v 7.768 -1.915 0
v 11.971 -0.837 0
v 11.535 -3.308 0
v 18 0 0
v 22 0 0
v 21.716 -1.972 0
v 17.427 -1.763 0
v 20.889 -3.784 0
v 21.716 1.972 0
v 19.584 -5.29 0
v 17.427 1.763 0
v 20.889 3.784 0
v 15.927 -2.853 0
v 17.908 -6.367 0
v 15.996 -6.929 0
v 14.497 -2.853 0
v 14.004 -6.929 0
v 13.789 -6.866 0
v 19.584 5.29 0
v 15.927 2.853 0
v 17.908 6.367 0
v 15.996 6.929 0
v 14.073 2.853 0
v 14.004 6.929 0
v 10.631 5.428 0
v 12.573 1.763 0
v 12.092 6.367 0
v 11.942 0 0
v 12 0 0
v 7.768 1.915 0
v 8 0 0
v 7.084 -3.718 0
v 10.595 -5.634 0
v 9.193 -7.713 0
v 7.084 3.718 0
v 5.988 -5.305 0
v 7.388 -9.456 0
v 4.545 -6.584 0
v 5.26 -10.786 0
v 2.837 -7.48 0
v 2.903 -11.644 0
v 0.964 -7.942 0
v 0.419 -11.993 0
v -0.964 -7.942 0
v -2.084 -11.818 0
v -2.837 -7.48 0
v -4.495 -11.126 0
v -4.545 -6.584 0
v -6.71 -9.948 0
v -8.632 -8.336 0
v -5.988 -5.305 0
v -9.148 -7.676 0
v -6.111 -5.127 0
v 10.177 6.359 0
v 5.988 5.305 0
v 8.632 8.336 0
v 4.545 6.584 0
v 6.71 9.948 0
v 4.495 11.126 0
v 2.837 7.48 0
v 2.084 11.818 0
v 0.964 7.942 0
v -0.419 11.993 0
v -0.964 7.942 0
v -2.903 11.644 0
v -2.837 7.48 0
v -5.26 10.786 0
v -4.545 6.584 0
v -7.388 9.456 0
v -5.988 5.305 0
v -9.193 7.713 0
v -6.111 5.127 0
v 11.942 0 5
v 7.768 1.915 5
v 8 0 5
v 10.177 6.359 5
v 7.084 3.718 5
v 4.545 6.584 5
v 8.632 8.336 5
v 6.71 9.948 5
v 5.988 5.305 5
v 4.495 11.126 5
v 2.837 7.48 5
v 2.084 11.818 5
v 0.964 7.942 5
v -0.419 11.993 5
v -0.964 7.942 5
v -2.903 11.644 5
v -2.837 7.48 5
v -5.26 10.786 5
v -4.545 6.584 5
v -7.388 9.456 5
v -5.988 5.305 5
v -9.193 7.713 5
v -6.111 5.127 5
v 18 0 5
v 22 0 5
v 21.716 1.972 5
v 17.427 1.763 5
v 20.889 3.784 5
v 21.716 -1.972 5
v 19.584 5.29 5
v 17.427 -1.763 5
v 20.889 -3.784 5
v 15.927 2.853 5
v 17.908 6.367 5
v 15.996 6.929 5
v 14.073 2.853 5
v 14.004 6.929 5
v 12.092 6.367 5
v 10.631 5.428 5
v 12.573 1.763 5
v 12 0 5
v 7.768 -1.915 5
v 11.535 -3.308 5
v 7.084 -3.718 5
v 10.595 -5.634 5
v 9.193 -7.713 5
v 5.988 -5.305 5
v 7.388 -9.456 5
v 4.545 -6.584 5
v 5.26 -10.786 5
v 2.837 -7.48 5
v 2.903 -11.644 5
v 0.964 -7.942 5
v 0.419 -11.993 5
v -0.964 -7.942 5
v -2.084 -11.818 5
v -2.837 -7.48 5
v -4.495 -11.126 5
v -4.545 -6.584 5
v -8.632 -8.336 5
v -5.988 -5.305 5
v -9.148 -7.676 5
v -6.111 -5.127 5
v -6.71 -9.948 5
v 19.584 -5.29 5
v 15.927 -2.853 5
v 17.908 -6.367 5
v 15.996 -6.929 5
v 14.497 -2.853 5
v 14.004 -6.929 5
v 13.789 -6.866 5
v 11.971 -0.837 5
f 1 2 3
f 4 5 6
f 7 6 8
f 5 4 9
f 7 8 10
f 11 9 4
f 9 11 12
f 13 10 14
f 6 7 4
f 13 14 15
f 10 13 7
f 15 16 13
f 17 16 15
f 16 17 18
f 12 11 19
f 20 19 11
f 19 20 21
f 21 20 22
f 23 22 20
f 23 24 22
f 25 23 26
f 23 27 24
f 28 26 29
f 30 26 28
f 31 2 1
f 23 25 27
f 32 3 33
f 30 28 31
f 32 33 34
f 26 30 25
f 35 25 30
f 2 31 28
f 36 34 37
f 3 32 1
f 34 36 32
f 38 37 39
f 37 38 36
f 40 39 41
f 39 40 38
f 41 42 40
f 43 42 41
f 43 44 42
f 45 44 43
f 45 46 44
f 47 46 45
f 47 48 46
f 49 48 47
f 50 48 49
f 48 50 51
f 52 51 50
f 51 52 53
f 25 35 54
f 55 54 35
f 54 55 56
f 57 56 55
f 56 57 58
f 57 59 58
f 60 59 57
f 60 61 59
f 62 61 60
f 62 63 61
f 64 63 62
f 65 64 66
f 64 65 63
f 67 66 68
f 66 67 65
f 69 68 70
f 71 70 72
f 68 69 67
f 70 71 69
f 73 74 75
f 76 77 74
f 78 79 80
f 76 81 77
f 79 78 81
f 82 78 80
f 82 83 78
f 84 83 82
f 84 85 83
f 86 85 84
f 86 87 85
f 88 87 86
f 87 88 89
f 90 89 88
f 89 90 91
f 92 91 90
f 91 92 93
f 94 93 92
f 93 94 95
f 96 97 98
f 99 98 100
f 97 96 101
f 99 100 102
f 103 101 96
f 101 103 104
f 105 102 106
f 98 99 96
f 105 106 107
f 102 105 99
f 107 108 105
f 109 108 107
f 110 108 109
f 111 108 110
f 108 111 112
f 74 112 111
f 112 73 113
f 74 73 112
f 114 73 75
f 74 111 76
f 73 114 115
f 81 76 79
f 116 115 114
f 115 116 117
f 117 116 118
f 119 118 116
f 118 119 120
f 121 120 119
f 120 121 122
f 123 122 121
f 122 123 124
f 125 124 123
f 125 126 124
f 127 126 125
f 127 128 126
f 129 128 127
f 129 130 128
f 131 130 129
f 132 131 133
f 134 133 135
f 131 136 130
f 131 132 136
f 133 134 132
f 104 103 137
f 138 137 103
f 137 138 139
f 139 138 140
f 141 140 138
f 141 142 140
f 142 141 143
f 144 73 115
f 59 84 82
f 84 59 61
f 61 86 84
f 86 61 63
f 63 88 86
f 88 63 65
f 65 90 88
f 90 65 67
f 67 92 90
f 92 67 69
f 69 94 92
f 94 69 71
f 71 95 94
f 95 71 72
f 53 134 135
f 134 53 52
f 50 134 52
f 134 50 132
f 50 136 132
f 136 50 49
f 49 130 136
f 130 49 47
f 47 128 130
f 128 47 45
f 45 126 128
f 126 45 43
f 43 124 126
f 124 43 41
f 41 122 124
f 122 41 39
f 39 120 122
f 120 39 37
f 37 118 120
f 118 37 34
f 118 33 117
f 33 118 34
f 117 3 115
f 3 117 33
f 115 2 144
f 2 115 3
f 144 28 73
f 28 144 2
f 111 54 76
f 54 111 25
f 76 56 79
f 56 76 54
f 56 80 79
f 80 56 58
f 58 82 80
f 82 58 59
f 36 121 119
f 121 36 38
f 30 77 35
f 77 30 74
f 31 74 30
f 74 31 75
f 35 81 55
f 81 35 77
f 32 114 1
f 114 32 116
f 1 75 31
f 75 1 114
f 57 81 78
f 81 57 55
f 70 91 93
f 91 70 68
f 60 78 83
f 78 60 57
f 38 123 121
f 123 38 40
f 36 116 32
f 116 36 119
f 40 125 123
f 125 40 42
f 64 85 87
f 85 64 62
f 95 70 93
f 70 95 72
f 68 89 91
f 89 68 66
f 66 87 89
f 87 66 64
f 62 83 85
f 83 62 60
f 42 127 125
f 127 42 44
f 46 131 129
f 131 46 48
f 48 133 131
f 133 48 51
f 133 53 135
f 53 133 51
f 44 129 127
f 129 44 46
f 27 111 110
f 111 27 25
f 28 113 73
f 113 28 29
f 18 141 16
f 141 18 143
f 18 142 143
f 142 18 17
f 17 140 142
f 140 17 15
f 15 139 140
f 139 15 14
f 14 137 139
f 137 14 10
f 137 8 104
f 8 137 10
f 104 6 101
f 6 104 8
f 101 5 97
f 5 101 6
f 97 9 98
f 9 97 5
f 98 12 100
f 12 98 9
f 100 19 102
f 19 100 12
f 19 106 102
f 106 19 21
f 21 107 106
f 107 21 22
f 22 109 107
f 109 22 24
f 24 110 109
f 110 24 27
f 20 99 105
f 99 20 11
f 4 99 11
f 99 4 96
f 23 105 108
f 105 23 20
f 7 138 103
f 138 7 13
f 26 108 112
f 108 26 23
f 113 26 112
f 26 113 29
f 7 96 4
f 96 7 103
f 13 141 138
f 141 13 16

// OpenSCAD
// file: pie_cutout.scad
module pie_cutout(r, start_angle, end_angle) {
    R = r * sqrt(2) + 1;
    a0 = (4 * start_angle + 0 * end_angle) / 4;
    a1 = (3 * start_angle + 1 * end_angle) / 4;
    a2 = (2 * start_angle + 2 * end_angle) / 4;
    a3 = (1 * start_angle + 3 * end_angle) / 4;
    a4 = (0 * start_angle + 4 * end_angle) / 4;
    if(end_angle > start_angle)
        difference() {
        circle(r);
        polygon([
            [0,0],
            [R * cos(a0), R * sin(a0)],
            [R * cos(a1), R * sin(a1)],
            [R * cos(a2), R * sin(a2)],
            [R * cos(a3), R * sin(a3)],
            [R * cos(a4), R * sin(a4)],
            [0,0]
       ]);
    }
}

module pie_cutout_3d(h, r, angle){
    linear_extrude(h)
    pie_cutout(r, 0, angle);
}
// main file
use <pie_cutout.scad>

module clip(
    height, tube_radius, cable_radius, wall_thickness, tube_angle, cable_angle
    ){
    difference(){
        rotate([0,0,180-tube_angle/2]){
            pie_cutout_3d(h=height, r=tube_radius+wall_thickness, angle=tube_angle);
        }
        cylinder(h=height, r=tube_radius);
    }
    translate([tube_radius+cable_radius+wall_thickness,0 ,0]){
        difference(){
            rotate([0,0,180])
                pie_cutout_3d(h=height, r=cable_radius+wall_thickness, angle=cable_angle);
            cylinder(h=height, r=cable_radius);
        }
    }
}

clip(5, 8, 3, 4, 80, 80);
